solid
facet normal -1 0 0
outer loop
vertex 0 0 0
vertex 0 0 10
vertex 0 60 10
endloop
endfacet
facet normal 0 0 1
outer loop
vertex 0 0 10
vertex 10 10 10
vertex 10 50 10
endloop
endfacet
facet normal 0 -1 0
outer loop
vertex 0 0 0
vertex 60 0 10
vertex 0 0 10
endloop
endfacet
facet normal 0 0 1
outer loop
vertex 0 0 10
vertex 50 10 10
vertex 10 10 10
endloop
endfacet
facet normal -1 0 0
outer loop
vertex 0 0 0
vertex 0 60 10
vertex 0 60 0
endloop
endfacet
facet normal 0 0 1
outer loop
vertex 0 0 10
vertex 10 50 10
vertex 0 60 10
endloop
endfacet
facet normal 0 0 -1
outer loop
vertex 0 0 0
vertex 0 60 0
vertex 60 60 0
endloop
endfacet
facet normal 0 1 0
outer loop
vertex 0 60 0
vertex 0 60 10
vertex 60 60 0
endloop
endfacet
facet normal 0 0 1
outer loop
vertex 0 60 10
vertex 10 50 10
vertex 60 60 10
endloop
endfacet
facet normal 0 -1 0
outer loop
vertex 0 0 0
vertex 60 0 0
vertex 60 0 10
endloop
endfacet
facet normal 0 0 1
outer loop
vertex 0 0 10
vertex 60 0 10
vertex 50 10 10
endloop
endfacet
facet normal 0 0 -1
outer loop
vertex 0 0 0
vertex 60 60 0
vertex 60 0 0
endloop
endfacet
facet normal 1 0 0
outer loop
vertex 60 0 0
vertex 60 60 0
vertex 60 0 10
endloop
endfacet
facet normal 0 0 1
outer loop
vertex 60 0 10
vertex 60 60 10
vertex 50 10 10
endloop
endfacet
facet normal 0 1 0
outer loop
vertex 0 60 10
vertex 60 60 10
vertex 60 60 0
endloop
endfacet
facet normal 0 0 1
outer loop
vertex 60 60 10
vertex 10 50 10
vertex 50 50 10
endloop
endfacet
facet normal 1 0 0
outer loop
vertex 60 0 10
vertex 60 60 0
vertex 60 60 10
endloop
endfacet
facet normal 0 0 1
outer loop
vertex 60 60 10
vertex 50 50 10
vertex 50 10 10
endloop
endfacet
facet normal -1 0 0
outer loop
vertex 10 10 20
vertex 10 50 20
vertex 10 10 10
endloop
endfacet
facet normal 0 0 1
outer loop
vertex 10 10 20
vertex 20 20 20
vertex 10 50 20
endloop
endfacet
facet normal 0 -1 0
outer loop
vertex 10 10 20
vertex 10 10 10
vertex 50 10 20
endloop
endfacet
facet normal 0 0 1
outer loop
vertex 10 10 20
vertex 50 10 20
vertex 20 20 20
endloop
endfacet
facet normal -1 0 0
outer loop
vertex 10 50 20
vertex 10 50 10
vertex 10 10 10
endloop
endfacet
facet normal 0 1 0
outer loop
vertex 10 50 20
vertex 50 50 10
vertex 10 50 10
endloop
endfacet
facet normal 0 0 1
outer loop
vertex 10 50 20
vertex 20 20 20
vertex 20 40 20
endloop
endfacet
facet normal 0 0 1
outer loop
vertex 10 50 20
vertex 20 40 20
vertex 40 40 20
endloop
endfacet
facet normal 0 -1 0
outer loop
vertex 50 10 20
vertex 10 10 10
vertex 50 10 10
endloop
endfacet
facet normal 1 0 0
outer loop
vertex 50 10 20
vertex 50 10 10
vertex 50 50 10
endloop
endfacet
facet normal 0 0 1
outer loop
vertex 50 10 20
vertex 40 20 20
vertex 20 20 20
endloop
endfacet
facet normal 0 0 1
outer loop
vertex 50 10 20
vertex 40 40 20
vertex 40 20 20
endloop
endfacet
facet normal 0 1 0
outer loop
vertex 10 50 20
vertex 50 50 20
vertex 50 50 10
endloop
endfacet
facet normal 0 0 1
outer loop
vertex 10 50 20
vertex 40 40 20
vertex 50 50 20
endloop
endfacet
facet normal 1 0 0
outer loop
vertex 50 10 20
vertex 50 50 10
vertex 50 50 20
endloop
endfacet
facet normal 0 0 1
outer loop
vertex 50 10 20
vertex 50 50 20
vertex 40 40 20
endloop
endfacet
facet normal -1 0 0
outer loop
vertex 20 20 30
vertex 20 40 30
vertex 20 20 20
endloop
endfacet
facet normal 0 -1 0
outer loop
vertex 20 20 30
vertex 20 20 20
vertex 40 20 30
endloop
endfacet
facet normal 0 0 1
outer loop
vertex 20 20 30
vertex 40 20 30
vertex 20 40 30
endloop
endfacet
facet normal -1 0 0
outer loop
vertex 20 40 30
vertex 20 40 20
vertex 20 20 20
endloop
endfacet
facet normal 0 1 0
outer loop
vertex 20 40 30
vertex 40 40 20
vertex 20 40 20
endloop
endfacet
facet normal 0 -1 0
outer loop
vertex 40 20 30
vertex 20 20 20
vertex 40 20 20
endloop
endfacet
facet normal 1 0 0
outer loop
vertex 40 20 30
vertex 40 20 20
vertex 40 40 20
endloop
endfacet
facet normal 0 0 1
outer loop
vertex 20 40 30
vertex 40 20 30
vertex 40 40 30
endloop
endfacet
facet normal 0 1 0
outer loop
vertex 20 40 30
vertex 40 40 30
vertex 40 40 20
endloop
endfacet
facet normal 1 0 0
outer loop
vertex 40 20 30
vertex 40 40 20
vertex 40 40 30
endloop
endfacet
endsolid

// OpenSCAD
// 3段の階段状ピラミッド

module step_pyramid() {
    // 1段目: 60 x 60 x 10
    translate([0, 0, 0])
        cube([60, 60, 10], center = false);

    // 2段目: 40 x 40 x 10
    translate([10, 10, 10])
        cube([40, 40, 10], center = false);

    // 3段目: 20 x 20 x 10
    translate([20, 20, 20])
        cube([20, 20, 10], center = false);
}

step_pyramid();
